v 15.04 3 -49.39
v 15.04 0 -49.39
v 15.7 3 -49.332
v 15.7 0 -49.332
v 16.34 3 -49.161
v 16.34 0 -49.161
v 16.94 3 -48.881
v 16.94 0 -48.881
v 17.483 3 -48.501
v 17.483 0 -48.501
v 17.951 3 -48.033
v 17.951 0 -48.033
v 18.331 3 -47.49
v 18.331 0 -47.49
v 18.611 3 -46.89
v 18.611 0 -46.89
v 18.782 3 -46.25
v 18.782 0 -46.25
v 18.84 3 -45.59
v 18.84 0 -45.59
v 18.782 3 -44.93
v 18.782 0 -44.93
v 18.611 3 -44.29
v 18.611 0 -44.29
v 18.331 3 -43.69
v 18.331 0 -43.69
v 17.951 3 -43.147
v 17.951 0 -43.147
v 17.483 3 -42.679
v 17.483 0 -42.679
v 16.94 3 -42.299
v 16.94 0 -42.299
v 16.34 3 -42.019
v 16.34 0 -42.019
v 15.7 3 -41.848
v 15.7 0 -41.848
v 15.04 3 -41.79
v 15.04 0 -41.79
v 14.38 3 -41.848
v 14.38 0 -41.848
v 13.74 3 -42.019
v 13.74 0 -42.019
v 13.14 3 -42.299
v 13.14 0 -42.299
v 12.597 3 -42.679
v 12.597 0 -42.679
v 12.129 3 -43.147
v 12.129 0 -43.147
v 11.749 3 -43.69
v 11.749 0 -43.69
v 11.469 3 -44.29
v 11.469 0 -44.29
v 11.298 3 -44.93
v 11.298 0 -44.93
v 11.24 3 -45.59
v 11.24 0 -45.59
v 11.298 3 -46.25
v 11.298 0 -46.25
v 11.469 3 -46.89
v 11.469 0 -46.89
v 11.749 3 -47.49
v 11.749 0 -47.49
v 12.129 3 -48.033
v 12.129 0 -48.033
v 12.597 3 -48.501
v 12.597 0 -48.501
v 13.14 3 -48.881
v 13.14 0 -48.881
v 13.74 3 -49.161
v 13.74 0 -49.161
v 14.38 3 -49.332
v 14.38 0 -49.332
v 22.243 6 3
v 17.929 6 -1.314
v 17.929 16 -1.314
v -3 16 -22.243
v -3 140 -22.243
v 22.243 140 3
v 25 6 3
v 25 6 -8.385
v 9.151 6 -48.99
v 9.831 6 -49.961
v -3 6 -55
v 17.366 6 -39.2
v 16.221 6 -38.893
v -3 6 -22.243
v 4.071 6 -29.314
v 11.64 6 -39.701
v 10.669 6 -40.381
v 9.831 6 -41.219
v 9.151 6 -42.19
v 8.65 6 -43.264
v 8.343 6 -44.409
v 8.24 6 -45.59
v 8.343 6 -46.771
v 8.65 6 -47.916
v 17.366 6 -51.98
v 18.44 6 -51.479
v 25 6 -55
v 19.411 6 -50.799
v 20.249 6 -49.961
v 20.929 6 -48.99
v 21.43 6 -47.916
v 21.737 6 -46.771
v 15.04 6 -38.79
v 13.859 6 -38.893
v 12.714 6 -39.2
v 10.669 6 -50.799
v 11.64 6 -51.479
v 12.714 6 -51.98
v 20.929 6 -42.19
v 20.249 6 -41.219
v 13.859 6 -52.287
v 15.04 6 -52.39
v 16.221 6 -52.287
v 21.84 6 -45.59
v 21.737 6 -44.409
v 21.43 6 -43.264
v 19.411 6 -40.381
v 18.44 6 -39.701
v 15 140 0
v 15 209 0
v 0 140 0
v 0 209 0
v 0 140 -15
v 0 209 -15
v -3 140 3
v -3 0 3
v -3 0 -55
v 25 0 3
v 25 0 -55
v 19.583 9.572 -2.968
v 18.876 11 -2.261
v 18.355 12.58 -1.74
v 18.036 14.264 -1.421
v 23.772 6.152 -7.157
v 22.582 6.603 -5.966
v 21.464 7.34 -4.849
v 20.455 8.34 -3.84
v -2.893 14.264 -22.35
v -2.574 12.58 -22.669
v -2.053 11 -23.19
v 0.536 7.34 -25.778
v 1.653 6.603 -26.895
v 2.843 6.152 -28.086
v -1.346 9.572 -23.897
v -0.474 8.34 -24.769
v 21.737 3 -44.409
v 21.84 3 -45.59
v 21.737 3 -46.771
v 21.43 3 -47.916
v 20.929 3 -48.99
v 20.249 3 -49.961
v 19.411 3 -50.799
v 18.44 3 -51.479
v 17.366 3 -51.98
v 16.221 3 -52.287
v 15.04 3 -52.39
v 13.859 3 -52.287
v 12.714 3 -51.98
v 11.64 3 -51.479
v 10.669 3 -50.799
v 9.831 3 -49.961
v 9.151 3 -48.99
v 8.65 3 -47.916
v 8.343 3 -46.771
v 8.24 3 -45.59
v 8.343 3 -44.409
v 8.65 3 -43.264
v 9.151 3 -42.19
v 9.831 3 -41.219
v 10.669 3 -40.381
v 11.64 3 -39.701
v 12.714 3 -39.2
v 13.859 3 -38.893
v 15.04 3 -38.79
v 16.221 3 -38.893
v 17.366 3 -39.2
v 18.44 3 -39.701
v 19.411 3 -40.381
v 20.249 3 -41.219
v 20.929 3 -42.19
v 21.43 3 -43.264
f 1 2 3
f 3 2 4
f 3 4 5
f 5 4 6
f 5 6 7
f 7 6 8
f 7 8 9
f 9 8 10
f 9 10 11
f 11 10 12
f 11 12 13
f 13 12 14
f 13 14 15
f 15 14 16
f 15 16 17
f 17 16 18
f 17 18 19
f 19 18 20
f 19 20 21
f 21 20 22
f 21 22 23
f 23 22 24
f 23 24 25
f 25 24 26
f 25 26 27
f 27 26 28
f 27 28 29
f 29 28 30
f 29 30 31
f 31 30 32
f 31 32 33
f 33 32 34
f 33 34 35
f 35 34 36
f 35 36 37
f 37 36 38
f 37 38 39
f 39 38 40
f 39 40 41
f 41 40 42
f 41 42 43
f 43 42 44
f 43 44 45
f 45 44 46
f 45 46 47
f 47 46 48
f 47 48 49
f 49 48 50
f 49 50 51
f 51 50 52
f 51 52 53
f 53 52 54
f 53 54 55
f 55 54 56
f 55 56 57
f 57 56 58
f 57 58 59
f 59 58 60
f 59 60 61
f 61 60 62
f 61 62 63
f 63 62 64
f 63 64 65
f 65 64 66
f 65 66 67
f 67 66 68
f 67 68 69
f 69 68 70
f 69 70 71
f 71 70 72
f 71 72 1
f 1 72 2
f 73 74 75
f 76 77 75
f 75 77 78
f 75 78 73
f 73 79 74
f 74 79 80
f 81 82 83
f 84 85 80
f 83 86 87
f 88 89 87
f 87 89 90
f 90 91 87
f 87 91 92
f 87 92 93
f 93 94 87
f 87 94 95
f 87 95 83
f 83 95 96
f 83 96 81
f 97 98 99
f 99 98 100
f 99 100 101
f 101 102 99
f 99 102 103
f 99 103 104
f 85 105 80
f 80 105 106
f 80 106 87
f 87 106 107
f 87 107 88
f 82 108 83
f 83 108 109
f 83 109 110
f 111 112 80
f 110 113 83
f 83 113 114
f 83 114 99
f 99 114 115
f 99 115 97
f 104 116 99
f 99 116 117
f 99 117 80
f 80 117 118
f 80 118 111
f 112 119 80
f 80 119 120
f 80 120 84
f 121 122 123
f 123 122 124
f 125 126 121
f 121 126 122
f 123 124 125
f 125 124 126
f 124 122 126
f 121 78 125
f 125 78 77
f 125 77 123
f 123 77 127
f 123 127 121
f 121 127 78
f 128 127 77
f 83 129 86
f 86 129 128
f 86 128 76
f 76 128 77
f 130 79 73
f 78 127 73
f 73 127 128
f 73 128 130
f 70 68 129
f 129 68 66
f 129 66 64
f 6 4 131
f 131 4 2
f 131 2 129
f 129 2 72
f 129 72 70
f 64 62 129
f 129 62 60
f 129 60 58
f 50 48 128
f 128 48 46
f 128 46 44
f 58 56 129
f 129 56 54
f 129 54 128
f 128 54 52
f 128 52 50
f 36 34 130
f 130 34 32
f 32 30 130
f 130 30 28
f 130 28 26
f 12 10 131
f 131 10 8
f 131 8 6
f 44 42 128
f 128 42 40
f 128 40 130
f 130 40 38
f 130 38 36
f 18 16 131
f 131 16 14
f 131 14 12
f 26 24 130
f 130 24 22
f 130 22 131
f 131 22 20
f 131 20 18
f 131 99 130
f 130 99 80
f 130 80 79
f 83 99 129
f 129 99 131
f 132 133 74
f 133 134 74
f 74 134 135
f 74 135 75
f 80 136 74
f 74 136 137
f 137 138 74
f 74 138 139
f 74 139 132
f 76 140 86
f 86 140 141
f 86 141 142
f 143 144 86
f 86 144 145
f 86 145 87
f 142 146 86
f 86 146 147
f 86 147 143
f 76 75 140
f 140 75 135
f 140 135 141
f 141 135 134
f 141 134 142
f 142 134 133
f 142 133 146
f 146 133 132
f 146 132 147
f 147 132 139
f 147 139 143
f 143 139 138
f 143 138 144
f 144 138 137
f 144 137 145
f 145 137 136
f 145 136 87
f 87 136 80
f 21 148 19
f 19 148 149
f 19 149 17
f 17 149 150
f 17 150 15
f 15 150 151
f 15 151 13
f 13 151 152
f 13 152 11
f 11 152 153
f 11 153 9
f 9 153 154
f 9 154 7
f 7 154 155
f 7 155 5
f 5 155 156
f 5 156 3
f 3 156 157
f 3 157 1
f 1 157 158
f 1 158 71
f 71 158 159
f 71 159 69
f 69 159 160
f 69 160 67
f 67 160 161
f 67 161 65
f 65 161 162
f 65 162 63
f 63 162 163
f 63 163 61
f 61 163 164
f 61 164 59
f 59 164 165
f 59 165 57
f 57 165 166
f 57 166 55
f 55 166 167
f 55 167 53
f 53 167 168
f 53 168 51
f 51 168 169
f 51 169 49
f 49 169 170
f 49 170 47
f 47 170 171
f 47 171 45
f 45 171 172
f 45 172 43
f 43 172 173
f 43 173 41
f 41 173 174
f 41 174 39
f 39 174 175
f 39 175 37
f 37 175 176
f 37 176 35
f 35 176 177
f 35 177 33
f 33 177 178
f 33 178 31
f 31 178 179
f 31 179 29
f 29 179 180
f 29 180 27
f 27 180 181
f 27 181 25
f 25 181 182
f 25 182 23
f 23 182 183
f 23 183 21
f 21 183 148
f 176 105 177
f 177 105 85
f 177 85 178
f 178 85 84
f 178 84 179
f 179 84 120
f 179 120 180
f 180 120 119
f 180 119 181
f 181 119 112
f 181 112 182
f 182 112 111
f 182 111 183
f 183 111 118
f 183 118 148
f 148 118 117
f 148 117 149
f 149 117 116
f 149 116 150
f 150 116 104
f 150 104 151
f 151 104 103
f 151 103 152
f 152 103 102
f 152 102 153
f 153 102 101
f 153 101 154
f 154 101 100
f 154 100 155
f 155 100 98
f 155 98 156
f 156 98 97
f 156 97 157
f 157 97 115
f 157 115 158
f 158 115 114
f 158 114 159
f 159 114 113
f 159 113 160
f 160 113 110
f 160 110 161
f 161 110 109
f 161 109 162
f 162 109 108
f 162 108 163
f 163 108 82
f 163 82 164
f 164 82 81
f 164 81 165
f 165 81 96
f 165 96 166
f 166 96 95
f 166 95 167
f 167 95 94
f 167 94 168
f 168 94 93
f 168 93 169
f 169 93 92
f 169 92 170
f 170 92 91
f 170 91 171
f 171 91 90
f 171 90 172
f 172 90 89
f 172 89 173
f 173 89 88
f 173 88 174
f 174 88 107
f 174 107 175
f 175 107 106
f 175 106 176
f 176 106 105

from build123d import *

# Parameters (mm, degrees)
BOSS_EXTRUDE3_DEPTH = 320
SKETCH7_W           = 15
SKETCH7_H           = 111
CUT_EXTRUDE3_DEPTH  = 321.702354216
BOSS_EXTRUDE5_DEPTH = 140
SKETCH4_R           = 3.8
BOSS_EXTRUDE4_DEPTH = 6
BOSS_EXTRUDE6_DEPTH = 10
CUT_EXTRUDE4_DEPTH  = 220.0148158
SKETCH11_R          = 6.8
CUT_EXTRUDE5_DEPTH  = 3


with BuildPart() as part:
    # Sketch1 → Boss-Extrude3 (new body)
    with BuildSketch(Plane(origin=(0, 0, 0), x_dir=(1, 0, 0), z_dir=(0, 1, 0))):
        Polygon((0, 0), (0, 15), (15, 0), align=None)
    extrude(amount=BOSS_EXTRUDE3_DEPTH)

    # Sketch7 → Cut-Extrude3 (cut, through all)
    with BuildSketch(Plane.XY):
        with Locations((7.5, 264.5)):
            Rectangle(SKETCH7_W, SKETCH7_H)
    extrude(amount=-CUT_EXTRUDE3_DEPTH, mode=Mode.SUBTRACT)

    # Sketch8 → Boss-Extrude5 (add)
    with BuildSketch(Plane.XZ):
        Polygon((-3, -22.242640687), (-3, 3), (22.242640687, 3), align=None)
    extrude(amount=-BOSS_EXTRUDE5_DEPTH)

    # Sketch4 → Boss-Extrude4 (add)
    with BuildSketch(Plane.XZ):
        Polygon((0, -55), (25, -55), (25, 3), (22.242640687, 3), (-3, -22.242640687), (-3, -55), align=None)
        with Locations(Location((15.04, -45.59, 0), (0, 0, 270))):
            Circle(SKETCH4_R, mode=Mode.SUBTRACT)
    extrude(amount=-BOSS_EXTRUDE4_DEPTH)

    # Sketch9 → Boss-Extrude6 (add)
    with BuildSketch(Plane(origin=(0, 6, 0), x_dir=(1, 0, 0), z_dir=(0, 1, 0))):
        Polygon((-3, 22.242640687), (4.071067812, 29.313708499), (25, 8.384776311), (17.928932188, 1.313708499), align=None)
    extrude(amount=BOSS_EXTRUDE6_DEPTH)

    # Sketch10 → Cut-Extrude4 (cut, through all)
    with BuildSketch(Plane(origin=(8.307611845, 0, 8.307611845), x_dir=(0.7071067811865479, 0, -0.7071067811865471), z_dir=(0.7071067811865471, 0, 0.7071067811865479))):
        with BuildLine():
            Line((13.606601718, 16), (23.606601718, 16))
            Line((23.606601718, 16), (23.606601718, 6))
            ThreePointArc((23.606601718, 6), (16.535533906, 8.928932188), (13.606601718, 16))
        make_face()
    extrude(amount=-CUT_EXTRUDE4_DEPTH, mode=Mode.SUBTRACT)

    # Sketch11 → Cut-Extrude5 (cut)
    with BuildSketch(Plane(origin=(0, 6, 0), x_dir=(1, 0, 0), z_dir=(0, 1, 0))):
        with Locations(Location((15.04, 45.59, 0), (0, 0, 270))):
            Circle(SKETCH11_R)
    extrude(amount=-CUT_EXTRUDE5_DEPTH, mode=Mode.SUBTRACT)


solid = part.part
